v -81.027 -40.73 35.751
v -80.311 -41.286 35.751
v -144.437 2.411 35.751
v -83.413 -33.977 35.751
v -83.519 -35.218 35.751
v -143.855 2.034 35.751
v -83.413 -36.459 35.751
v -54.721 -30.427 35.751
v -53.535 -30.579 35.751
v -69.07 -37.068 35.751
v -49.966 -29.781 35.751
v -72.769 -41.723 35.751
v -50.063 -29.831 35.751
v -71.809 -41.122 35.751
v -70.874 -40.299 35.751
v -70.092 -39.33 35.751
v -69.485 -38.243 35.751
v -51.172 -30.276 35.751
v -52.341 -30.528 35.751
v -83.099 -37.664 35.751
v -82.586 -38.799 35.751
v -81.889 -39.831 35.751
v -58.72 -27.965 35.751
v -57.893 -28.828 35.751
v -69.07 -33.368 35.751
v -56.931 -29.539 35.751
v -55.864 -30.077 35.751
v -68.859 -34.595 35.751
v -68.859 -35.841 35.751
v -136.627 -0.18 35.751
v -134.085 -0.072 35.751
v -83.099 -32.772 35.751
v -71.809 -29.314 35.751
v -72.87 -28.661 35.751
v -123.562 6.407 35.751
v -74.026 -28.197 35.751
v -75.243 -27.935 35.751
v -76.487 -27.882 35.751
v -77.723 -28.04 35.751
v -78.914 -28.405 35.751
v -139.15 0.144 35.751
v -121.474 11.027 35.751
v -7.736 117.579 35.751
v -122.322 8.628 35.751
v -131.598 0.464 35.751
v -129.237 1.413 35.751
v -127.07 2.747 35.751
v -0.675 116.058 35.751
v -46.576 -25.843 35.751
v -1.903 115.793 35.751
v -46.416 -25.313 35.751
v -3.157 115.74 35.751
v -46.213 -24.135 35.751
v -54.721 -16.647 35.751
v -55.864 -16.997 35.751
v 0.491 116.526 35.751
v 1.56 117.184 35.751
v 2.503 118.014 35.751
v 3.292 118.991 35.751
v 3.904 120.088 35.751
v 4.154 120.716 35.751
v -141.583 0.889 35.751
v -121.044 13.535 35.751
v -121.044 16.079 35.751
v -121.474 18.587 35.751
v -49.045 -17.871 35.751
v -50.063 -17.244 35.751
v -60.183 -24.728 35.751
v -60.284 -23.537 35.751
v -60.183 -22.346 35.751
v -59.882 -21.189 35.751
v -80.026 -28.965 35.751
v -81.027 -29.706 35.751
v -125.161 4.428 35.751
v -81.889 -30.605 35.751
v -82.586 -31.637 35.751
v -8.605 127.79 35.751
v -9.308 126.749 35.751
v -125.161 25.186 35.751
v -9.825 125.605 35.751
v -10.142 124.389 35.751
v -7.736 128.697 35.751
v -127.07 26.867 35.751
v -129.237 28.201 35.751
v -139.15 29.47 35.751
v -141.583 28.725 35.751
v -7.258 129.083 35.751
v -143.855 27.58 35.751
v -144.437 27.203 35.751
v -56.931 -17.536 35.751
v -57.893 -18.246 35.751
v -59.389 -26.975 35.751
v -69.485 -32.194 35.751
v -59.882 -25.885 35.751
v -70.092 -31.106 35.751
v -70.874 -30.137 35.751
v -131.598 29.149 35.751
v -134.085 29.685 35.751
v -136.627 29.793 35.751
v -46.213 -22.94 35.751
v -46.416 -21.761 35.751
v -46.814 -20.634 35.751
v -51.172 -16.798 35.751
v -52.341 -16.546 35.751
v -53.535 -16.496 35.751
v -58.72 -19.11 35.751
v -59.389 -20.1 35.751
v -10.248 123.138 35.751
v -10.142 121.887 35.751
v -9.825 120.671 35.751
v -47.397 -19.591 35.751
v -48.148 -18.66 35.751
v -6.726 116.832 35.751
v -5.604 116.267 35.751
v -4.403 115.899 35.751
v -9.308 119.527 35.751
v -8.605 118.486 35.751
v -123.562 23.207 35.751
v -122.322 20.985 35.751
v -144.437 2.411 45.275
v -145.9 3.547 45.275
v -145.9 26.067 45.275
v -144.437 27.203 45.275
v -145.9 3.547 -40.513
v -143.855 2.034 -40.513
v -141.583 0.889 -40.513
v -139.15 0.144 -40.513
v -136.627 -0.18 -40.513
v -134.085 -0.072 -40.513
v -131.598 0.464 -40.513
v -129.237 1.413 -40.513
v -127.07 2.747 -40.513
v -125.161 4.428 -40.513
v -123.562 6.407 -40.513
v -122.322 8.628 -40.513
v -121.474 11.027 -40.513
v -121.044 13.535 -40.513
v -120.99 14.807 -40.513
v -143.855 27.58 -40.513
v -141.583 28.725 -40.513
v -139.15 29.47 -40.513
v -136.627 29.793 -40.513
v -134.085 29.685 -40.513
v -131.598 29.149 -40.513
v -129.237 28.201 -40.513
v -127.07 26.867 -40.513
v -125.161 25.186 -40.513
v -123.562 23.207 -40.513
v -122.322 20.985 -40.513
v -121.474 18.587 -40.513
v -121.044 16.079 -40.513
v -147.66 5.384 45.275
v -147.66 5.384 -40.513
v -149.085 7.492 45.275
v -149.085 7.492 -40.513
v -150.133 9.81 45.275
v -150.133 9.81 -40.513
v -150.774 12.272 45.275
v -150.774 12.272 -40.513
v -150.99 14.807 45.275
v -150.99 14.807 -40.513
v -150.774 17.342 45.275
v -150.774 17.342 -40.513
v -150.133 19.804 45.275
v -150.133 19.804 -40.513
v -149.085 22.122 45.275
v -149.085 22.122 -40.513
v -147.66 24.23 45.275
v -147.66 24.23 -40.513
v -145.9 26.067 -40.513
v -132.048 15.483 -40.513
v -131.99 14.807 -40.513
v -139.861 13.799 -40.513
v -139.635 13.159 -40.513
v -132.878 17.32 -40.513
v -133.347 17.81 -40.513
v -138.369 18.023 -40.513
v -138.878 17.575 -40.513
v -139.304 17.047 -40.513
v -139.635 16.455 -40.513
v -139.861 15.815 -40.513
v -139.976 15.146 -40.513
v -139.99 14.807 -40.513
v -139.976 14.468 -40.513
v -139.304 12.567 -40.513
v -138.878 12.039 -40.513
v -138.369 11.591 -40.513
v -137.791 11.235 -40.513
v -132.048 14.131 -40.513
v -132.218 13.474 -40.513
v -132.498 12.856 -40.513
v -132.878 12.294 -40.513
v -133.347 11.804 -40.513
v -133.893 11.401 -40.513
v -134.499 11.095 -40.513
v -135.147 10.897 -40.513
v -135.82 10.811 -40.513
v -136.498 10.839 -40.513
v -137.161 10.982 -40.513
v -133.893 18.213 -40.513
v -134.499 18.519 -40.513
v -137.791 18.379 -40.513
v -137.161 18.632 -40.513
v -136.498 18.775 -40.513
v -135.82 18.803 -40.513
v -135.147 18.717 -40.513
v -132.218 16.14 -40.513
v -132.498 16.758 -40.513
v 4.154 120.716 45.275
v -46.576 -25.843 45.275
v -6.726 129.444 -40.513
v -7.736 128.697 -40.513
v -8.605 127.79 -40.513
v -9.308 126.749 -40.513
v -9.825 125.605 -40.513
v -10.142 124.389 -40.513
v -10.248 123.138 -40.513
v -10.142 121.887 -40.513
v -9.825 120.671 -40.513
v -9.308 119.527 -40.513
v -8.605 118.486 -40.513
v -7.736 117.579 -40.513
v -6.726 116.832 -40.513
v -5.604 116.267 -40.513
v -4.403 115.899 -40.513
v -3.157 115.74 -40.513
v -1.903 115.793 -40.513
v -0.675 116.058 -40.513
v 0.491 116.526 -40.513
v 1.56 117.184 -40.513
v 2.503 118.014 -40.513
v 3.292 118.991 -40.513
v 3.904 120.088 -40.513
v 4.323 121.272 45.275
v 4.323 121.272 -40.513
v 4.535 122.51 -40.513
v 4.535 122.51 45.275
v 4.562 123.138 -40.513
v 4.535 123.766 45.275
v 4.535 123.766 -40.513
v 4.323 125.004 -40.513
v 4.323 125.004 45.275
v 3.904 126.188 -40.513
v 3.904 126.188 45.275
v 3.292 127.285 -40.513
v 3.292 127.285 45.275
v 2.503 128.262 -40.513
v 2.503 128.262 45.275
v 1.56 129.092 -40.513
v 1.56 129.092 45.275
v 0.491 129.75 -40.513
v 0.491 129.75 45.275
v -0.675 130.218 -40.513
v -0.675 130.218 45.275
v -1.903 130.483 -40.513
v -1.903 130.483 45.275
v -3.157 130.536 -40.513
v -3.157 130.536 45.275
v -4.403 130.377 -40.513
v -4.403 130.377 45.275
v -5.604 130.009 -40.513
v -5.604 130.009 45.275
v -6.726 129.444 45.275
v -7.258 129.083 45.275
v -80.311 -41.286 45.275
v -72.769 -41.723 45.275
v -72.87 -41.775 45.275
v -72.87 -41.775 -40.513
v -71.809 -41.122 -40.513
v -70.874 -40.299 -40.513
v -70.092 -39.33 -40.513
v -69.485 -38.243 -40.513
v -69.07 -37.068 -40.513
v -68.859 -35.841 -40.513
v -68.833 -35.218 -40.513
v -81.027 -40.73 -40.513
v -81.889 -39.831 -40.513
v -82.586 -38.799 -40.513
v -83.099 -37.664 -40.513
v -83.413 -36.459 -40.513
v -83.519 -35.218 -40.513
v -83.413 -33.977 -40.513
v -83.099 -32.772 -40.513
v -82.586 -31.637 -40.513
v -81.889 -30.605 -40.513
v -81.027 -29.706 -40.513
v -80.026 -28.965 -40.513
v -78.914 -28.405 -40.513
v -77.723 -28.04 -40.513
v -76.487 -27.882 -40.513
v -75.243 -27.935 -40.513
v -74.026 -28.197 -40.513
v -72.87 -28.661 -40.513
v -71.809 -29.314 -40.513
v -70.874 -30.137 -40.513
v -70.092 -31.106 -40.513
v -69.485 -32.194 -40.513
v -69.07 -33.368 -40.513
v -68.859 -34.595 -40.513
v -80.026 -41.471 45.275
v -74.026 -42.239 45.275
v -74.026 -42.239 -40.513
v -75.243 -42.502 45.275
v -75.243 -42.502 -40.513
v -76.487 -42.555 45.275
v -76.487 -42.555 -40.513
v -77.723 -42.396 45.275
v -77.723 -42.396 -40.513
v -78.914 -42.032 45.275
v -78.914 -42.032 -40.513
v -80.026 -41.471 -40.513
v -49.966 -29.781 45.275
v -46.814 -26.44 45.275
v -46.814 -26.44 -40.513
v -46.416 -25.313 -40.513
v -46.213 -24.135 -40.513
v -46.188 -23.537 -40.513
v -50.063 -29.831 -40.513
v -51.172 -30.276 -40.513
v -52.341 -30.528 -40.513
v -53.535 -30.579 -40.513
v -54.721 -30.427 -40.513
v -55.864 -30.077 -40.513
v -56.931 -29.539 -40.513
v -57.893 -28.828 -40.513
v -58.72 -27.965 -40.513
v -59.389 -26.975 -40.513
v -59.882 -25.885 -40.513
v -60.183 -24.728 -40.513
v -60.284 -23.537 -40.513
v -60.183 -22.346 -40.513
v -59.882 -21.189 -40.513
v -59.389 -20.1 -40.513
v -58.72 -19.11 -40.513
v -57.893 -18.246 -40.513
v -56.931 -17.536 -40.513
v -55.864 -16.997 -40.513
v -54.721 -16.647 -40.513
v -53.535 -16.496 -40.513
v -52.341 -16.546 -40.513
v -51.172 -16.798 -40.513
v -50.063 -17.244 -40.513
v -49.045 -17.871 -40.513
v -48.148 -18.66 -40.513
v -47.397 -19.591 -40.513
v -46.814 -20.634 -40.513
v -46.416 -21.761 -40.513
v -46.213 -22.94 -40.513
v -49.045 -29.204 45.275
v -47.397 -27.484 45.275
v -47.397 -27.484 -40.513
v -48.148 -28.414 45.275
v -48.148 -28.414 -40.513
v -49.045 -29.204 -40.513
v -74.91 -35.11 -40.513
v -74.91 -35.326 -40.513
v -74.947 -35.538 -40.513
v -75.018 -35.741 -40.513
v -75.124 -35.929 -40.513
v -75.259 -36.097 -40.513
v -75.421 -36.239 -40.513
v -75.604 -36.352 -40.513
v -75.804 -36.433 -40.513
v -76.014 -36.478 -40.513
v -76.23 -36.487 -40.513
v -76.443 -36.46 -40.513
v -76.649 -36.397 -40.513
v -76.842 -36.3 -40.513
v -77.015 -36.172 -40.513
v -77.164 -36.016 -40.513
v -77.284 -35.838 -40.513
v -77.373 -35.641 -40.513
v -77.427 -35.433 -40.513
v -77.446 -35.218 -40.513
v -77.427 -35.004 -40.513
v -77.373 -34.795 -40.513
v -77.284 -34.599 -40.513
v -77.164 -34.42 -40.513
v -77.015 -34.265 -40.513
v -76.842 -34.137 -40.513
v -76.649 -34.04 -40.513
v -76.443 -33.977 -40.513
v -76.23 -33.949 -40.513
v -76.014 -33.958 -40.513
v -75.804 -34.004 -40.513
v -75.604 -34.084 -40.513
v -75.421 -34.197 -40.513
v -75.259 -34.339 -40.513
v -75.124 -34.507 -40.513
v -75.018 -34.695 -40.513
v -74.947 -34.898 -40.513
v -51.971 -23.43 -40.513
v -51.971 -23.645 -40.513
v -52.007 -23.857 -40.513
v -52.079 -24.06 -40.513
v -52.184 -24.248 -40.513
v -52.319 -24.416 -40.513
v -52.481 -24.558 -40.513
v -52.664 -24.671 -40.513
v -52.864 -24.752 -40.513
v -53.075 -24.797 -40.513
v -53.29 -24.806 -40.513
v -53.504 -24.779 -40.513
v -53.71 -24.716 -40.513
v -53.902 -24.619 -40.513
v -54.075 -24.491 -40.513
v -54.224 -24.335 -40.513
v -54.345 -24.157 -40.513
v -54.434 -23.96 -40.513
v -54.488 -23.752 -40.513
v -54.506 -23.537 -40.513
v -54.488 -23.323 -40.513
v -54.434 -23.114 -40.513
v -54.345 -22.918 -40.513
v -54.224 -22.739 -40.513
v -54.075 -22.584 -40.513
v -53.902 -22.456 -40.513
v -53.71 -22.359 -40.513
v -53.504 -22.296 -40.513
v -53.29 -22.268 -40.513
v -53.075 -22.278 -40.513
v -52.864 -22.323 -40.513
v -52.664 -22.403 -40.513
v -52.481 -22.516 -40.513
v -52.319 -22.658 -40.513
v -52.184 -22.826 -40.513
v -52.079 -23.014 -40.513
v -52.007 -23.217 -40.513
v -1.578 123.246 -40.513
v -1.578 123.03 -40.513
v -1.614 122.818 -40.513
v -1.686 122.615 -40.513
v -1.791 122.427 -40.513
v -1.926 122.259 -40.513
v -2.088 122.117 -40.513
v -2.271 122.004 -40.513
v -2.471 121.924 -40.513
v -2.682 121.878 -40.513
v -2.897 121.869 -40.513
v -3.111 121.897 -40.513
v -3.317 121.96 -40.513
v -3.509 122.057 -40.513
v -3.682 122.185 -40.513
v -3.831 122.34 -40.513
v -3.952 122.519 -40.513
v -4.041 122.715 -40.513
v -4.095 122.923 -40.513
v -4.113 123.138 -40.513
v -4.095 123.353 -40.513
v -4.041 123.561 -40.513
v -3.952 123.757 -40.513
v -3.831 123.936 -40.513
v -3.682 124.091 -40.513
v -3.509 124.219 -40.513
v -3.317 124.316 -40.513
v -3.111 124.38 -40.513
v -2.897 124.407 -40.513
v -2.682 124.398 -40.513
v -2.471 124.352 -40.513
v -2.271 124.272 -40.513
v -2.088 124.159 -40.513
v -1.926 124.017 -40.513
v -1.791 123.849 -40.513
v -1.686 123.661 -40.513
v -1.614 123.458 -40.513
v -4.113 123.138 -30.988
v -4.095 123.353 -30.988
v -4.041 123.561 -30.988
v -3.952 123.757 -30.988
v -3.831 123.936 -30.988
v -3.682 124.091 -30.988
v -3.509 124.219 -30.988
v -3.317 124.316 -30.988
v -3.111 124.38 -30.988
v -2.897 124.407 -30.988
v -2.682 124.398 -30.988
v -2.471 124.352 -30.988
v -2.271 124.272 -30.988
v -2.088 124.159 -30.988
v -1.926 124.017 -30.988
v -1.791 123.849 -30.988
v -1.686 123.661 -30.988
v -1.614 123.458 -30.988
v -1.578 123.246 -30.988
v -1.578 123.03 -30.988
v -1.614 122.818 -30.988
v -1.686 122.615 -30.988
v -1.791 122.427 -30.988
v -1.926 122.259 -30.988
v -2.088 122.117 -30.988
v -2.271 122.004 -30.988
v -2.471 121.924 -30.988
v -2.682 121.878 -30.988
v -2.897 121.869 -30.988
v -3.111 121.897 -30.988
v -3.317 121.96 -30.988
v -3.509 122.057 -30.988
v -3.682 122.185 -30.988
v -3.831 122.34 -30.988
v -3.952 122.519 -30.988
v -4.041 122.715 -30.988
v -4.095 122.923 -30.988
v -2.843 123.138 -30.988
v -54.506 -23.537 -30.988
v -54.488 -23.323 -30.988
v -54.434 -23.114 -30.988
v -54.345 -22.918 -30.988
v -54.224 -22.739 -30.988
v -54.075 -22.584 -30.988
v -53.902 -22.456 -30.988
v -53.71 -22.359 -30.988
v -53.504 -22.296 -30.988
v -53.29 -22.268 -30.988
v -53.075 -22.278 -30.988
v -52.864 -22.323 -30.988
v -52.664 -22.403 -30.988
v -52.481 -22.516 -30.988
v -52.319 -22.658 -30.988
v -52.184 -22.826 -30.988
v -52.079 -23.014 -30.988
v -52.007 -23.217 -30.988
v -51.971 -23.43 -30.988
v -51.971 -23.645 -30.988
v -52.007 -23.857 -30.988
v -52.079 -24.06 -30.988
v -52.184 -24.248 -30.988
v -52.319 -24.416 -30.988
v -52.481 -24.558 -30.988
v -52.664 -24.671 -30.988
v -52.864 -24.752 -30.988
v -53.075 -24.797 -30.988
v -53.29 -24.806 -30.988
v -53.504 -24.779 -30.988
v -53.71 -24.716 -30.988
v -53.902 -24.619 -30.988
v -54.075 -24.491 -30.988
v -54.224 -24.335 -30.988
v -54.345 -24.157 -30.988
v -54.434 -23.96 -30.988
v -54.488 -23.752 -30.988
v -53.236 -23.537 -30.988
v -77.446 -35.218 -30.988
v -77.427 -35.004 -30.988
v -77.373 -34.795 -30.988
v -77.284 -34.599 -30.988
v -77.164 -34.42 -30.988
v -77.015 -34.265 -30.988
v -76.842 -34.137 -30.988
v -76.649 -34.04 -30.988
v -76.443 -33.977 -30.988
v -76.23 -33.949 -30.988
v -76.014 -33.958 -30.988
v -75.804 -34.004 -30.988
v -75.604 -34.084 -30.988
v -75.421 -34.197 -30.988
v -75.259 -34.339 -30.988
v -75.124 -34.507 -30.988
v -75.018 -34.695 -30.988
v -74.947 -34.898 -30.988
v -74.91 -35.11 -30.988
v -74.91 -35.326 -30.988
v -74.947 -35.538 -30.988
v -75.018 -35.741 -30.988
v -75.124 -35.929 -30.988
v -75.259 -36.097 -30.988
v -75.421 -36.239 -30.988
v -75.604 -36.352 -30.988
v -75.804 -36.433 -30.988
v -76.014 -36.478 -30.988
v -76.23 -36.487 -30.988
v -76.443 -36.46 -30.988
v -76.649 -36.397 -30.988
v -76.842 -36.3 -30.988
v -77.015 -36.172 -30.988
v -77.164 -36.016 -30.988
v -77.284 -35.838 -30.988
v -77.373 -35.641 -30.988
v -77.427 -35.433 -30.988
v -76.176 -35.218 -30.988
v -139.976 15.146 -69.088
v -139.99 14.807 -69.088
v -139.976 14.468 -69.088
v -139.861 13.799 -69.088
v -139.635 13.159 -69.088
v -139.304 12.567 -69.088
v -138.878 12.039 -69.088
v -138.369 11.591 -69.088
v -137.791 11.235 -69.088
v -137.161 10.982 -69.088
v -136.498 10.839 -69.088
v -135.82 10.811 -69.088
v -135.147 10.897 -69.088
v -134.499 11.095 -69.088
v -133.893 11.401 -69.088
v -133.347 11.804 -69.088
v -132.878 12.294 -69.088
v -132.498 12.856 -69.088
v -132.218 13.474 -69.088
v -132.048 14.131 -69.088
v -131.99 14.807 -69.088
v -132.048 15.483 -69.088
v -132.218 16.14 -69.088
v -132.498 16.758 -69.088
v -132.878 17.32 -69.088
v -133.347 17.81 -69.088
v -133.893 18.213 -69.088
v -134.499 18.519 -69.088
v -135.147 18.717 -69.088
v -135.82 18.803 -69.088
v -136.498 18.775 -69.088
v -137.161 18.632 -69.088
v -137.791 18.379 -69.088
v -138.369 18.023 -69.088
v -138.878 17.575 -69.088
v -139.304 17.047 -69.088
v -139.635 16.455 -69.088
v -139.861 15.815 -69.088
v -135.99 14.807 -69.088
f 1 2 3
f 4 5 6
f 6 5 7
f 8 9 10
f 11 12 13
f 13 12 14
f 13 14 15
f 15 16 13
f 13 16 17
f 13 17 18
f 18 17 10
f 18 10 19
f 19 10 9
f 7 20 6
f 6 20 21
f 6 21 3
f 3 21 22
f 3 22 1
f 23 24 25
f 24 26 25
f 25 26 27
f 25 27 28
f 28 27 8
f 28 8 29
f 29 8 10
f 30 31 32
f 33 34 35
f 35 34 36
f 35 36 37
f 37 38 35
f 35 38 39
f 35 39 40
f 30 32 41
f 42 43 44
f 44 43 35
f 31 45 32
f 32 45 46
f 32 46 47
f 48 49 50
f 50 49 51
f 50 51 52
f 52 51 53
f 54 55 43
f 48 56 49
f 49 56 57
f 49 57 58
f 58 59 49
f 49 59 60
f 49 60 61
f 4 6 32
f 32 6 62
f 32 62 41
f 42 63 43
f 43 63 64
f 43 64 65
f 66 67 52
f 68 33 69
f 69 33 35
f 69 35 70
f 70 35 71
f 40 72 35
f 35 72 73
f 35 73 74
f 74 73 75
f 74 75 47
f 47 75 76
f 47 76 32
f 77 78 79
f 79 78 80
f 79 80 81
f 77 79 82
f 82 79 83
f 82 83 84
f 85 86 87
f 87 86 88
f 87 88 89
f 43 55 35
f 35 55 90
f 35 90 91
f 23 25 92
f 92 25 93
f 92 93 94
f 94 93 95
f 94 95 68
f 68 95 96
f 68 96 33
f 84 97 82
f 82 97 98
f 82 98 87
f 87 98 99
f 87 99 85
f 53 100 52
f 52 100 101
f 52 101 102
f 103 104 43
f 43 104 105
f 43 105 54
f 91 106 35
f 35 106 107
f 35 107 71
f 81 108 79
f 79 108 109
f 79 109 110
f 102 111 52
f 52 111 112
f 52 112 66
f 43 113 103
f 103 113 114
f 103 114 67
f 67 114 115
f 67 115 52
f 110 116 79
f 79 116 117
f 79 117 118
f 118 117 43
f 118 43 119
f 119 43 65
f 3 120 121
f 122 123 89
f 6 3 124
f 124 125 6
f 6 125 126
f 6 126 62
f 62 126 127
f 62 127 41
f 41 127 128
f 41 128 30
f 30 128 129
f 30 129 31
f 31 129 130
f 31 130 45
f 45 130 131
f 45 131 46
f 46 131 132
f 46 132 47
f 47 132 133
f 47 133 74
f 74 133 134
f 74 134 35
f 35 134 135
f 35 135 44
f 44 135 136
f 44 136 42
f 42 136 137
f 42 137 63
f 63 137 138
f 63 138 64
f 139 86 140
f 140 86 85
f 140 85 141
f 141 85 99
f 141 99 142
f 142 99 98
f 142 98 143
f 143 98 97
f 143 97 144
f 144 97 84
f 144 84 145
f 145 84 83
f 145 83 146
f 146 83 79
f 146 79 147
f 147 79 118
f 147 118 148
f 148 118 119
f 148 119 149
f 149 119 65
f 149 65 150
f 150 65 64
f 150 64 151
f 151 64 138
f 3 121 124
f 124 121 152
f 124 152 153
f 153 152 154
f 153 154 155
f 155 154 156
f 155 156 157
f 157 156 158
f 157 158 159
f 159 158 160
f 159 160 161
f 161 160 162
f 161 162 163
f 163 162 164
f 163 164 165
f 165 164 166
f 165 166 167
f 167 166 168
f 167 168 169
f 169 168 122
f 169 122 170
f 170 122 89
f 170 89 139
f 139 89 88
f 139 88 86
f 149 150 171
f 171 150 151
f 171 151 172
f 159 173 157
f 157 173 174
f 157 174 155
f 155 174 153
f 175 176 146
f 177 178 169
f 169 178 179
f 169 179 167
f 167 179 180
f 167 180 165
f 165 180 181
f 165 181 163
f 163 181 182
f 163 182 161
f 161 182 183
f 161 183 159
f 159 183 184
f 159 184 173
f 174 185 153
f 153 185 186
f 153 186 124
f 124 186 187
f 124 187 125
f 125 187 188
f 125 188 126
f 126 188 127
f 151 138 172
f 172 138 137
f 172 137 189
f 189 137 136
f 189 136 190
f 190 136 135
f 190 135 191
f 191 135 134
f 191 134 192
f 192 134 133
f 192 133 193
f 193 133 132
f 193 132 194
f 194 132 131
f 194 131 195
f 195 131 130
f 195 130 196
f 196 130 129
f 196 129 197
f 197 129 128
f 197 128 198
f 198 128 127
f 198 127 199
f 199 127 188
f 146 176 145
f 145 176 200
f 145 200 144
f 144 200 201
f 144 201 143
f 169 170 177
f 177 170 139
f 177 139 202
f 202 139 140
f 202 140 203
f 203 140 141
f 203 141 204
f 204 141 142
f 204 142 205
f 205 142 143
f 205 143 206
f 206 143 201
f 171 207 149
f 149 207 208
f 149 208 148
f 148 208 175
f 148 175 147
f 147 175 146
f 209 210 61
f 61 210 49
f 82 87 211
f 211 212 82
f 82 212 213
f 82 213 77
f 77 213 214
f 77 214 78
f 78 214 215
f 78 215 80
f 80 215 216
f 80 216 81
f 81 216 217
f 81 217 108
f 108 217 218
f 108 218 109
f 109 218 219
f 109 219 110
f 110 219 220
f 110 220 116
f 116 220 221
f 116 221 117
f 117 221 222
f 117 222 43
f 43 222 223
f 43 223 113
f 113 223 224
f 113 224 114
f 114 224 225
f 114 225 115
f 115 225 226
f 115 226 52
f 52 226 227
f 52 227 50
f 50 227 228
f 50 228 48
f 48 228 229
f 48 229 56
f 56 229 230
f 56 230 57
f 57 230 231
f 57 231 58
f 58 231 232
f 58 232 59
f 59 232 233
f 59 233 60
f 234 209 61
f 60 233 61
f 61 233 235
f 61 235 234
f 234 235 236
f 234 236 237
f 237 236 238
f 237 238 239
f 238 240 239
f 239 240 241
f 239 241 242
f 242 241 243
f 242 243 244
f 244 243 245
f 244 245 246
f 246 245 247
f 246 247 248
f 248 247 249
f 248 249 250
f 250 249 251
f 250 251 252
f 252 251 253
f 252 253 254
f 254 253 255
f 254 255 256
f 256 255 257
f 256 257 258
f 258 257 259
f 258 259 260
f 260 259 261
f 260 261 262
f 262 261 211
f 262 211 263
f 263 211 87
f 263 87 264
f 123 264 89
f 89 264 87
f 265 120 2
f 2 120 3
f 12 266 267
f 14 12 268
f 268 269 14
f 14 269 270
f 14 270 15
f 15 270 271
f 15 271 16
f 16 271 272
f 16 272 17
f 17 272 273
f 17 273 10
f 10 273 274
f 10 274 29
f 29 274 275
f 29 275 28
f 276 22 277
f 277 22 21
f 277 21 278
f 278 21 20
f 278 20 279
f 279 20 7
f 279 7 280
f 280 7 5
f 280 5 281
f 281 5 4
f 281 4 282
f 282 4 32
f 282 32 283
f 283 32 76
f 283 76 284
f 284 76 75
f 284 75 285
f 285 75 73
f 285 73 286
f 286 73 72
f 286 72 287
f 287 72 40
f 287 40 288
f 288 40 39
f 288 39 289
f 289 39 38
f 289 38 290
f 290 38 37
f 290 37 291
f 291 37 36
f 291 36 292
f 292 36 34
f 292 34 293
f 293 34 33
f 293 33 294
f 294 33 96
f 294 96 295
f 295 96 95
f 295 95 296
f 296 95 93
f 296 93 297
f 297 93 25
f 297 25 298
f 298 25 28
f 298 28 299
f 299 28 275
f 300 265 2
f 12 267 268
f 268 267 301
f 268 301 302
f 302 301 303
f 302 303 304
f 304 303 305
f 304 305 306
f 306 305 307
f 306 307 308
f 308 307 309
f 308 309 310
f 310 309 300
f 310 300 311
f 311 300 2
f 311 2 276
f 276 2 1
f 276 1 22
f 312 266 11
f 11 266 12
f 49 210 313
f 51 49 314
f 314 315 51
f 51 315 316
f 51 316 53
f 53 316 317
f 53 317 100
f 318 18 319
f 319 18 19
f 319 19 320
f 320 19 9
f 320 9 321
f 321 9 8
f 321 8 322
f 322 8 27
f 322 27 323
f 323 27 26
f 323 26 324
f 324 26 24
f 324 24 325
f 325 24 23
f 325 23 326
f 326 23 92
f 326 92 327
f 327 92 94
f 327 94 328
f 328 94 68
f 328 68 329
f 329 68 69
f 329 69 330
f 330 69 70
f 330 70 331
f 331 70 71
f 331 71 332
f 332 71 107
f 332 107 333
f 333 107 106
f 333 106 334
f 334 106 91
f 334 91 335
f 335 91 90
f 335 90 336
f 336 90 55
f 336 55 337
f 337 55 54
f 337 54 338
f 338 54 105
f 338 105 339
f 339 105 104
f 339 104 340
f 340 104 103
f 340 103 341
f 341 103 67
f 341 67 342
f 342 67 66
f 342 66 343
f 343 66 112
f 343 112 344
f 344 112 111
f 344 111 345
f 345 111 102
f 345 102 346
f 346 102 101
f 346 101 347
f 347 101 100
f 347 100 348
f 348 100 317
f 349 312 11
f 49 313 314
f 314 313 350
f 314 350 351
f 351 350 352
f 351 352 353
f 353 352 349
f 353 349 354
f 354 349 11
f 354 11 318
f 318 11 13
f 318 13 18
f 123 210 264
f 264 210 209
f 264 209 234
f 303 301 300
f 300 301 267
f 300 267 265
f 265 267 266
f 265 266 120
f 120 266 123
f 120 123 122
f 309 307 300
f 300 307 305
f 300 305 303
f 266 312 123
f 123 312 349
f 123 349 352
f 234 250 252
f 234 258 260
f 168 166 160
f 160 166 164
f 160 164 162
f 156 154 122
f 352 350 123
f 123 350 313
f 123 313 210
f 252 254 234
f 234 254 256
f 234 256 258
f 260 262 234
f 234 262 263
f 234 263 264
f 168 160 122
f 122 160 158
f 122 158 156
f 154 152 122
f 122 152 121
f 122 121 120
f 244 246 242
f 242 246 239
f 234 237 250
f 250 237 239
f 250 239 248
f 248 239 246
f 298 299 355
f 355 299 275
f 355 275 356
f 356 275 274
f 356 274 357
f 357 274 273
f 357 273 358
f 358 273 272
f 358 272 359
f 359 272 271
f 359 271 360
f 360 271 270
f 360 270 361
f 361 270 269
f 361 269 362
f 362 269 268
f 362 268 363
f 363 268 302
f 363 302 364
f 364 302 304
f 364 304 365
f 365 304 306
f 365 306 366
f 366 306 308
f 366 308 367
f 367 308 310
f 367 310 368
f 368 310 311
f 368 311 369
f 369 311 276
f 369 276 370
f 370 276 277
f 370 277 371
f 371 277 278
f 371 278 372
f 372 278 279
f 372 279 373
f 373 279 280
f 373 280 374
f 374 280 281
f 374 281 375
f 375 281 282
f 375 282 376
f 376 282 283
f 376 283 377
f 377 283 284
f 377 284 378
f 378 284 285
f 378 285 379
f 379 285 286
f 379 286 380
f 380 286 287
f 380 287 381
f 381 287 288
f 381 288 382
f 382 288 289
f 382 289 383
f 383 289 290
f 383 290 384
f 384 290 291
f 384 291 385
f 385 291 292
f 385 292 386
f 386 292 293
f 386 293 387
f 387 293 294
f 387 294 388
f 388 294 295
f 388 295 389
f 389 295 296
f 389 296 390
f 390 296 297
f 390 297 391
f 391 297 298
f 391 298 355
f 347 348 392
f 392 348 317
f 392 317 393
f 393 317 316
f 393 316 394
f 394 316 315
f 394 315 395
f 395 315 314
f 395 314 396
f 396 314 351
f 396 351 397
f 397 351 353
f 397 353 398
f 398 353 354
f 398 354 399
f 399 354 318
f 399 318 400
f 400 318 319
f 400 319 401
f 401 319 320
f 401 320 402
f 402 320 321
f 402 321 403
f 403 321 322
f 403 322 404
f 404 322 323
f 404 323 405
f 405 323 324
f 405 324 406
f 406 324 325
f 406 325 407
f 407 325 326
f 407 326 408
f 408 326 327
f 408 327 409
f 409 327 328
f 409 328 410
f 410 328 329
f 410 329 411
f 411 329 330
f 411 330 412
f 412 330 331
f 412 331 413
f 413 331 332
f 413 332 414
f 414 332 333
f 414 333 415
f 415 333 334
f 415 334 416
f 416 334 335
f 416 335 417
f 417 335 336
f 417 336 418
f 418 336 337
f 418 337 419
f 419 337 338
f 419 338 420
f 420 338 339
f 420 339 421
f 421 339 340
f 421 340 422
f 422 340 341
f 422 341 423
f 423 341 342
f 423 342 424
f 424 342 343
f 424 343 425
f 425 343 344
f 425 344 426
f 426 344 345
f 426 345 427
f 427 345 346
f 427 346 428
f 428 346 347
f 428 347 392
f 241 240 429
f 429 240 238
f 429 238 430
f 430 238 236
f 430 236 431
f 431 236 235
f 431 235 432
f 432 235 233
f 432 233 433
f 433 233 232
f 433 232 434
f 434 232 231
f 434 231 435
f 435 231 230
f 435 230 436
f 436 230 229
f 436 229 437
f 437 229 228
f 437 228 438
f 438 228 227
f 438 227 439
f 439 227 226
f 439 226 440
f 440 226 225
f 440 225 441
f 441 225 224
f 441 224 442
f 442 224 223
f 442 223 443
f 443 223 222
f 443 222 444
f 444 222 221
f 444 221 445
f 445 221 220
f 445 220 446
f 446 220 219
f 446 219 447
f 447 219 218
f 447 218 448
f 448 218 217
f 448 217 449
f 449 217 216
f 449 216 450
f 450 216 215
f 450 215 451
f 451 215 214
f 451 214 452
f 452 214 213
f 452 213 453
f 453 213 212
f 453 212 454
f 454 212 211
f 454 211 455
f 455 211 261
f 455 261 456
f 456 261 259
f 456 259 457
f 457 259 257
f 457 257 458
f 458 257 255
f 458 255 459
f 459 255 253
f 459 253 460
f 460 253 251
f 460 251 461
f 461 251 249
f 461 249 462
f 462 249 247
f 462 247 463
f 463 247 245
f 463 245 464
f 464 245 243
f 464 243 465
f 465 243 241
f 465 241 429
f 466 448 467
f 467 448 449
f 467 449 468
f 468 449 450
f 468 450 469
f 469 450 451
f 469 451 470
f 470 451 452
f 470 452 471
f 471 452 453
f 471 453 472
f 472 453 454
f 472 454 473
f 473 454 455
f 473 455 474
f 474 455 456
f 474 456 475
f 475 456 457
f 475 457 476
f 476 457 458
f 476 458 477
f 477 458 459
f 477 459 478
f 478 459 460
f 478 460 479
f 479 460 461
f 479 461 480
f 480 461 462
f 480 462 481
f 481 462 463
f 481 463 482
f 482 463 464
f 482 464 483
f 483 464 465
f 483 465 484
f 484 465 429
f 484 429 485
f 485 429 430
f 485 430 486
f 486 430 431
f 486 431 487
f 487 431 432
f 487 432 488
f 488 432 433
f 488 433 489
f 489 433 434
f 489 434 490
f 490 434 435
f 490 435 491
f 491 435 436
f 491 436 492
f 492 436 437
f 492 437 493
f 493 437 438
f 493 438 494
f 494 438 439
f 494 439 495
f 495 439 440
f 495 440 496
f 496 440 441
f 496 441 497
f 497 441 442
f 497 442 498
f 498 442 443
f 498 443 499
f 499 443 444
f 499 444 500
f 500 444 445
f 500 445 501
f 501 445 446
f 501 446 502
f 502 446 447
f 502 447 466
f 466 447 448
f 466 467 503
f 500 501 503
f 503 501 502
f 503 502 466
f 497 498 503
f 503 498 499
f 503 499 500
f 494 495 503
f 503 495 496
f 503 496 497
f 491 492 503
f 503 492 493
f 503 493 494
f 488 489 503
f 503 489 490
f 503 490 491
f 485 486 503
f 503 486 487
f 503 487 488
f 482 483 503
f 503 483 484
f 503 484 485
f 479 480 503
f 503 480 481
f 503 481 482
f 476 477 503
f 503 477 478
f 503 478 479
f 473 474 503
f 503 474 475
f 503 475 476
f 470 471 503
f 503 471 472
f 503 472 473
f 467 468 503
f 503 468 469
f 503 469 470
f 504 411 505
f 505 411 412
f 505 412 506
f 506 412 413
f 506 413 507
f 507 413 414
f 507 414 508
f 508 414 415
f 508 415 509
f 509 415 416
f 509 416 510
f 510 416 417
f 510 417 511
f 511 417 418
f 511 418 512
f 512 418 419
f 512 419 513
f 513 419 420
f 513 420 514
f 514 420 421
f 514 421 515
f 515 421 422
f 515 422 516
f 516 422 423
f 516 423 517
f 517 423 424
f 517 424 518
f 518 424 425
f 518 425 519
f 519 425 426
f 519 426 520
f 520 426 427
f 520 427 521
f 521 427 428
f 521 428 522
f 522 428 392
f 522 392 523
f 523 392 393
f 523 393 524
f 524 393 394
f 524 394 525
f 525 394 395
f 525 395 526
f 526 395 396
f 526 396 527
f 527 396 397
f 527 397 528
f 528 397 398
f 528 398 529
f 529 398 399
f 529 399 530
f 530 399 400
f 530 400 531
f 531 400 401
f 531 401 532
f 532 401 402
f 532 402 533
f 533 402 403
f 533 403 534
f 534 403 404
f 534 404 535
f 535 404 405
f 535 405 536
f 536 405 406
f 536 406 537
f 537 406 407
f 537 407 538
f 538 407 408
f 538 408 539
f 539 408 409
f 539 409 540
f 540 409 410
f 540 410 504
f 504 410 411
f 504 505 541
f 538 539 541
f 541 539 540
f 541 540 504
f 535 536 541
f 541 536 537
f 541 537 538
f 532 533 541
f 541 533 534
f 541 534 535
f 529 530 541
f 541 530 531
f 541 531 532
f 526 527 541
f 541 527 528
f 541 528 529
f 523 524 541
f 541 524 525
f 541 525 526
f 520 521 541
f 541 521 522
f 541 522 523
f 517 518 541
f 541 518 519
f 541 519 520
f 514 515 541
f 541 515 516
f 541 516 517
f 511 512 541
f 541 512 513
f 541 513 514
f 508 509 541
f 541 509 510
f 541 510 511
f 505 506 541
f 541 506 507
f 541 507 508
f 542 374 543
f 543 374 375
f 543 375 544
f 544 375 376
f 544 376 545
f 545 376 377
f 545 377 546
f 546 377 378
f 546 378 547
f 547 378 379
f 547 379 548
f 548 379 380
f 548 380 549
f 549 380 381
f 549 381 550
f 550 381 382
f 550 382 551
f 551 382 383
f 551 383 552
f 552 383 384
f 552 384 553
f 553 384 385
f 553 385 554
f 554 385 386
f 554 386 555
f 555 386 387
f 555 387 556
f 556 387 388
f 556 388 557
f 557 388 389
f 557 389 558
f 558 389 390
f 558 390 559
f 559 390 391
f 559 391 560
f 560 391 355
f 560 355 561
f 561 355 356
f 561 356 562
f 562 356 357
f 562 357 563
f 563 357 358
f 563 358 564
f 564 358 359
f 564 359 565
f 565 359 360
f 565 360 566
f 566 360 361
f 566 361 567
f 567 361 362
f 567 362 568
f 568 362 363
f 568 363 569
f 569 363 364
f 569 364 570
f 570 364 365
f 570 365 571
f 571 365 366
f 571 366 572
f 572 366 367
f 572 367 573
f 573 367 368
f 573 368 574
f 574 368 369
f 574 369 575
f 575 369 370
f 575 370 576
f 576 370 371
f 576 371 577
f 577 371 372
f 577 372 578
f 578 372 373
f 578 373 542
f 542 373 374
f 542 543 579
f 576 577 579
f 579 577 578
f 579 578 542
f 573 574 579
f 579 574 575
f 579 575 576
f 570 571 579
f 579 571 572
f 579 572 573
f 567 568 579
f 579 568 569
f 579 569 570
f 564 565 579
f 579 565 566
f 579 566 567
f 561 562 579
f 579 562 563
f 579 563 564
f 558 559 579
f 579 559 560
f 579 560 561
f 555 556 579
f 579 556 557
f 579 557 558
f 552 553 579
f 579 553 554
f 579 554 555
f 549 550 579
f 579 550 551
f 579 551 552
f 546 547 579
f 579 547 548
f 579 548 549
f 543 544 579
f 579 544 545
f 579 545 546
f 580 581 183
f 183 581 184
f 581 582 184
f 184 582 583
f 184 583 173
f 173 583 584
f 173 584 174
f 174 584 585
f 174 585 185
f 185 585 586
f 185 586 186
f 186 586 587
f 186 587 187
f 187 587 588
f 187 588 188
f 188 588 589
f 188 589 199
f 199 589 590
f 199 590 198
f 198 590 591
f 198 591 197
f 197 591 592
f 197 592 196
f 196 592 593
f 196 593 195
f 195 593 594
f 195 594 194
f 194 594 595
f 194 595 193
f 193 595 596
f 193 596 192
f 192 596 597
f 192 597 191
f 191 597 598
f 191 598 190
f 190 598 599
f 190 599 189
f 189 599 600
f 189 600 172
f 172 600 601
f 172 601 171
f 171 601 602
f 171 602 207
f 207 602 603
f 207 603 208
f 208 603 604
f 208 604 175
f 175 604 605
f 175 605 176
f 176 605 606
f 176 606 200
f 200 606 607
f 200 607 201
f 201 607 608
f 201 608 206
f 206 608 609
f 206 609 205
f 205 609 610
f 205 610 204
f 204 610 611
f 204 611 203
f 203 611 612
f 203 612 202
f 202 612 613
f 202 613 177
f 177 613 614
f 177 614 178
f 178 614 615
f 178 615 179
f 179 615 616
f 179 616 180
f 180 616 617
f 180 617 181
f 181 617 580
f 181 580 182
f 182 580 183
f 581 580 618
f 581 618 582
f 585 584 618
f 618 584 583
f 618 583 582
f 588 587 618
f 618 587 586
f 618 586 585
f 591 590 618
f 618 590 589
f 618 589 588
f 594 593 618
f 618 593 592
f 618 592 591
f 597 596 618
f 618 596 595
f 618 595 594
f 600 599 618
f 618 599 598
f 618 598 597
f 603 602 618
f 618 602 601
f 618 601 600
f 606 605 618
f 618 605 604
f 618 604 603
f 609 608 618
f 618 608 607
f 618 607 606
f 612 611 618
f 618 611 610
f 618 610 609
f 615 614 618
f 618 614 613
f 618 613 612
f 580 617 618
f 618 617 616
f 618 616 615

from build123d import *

# Parameters (mm, degrees)
SKETCH2_R             = 15
BOSS_EXTRUDE5_DEPTH   = 40.513
SKETCH2_R_2           = 7.343075537
BOSS_EXTRUDE5_2_DEPTH = 40.513
SKETCH2_R_3           = 7.048050761
BOSS_EXTRUDE5_3_DEPTH = 40.513
SKETCH2_R_4           = 7.405031705
BOSS_EXTRUDE5_4_DEPTH = 40.513
BOSS_EXTRUDE6_DEPTH   = 4.7625
SKETCH9_R             = 1.27
CUT_EXTRUDE2_DEPTH    = 9.525
SKETCH10_R            = 4
BOSS_EXTRUDE7_DEPTH   = 28.575


with BuildPart() as part:
    # Sketch2 → Boss-Extrude5 (new, symmetric)
    with BuildSketch(Plane.XY):
        with Locations((-135.989964622, 14.806967819)):
            Circle(SKETCH2_R)
    extrude(amount=BOSS_EXTRUDE5_DEPTH, both=True)



with BuildPart() as body_2:
    # Sketch2 → Boss-Extrude5 2 (new, symmetric)
    with BuildSketch(Plane.XY):
        with Locations((-76.175726851, -35.218198752)):
            Circle(SKETCH2_R_2)
    extrude(amount=BOSS_EXTRUDE5_2_DEPTH, both=True)


with BuildPart() as body_3:
    # Sketch2 → Boss-Extrude5 3 (new, symmetric)
    with BuildSketch(Plane.XY):
        with Locations((-53.236134933, -23.53725338)):
            Circle(SKETCH2_R_3)
    extrude(amount=BOSS_EXTRUDE5_3_DEPTH, both=True)


with BuildPart() as body_4:
    # Sketch2 → Boss-Extrude5 4 (new, symmetric)
    with BuildSketch(Plane.XY):
        with Locations((-2.84319901, 123.138021163)):
            Circle(SKETCH2_R_4)
    extrude(amount=BOSS_EXTRUDE5_4_DEPTH, both=True)


with BuildPart() as part_1:
    add(part.part)

    add(body_2.part)  # Boss-Extrude6 merges body 2

    add(body_3.part)  # Boss-Extrude6 merges body 3

    add(body_4.part)  # Boss-Extrude6 merges body 4
    # Sketch6 → Boss-Extrude6 (add, symmetric)
    with BuildSketch(Plane.XY.offset(40.513)):
        with BuildLine():
            Line((-144.43677034, 2.411344674), (-80.310762347, -41.286331891))
            ThreePointArc((-80.310762347, -41.286331891), (-76.600330476, -42.54898794), (-72.768932333, -41.723159126))
            Line((-72.768932333, -41.723159126), (-49.966216141, -29.780862162))
            ThreePointArc((-49.966216141, -29.780862162), (-47.894807622, -28.135648979), (-46.575803889, -25.842683907))
            Line((-46.575803889, -25.842683907), (4.15447513, 120.715821505))
            ThreePointArc((4.15447513, 120.715821505), (1.535064989, 129.110064273), (-7.258334859, 129.082856736))
            Line((-7.258334859, 129.082856736), (-144.43677034, 27.202590964))
            ThreePointArc((-144.43677034, 27.202590964), (-150.989964622, 14.806967819), (-144.43677034, 2.411344674))
        make_face()
    extrude(amount=BOSS_EXTRUDE6_DEPTH, both=True)

    # Sketch9 → Cut-Extrude2 (cut)
    with BuildSketch(Plane(origin=(0, 0, -40.513), x_dir=(-1, 0, 0), z_dir=(0, 0, -1))):
        with Locations((53.236134933, -23.53725338)):
            Circle(SKETCH9_R)
        with Locations((76.175726851, -35.218198752)):
            Circle(SKETCH9_R)
        with Locations((2.84319901, 123.138021163)):
            Circle(SKETCH9_R)
    extrude(amount=-CUT_EXTRUDE2_DEPTH, mode=Mode.SUBTRACT)

    # Sketch10 → Boss-Extrude7 (add)
    with BuildSketch(Plane(origin=(0, 0, -40.513), x_dir=(-1, 0, 0), z_dir=(0, 0, -1))):
        with Locations((135.989964622, 14.806967819)):
            Circle(SKETCH10_R)
    extrude(amount=BOSS_EXTRUDE7_DEPTH)


solid = part_1.part
